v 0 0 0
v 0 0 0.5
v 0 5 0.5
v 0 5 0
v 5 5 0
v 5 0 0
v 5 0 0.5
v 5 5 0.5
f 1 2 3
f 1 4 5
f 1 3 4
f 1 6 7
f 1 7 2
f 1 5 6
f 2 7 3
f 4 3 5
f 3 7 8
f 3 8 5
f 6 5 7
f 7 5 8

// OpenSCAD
/* Warning, this is a very basic generator with a lot of approximation 
input data : [UQFN, S5X, 5x5x0.5mm, 40, , B, C04-00156B]
generated by com.zoubworld.electronics.cad.model3d.Basic
Date : Sun Feb 15 10:50:48 CET 2026
*/

//body
color("black")
translate([0,0,0])
cube([5.0,5.0,0.5], center=false);
